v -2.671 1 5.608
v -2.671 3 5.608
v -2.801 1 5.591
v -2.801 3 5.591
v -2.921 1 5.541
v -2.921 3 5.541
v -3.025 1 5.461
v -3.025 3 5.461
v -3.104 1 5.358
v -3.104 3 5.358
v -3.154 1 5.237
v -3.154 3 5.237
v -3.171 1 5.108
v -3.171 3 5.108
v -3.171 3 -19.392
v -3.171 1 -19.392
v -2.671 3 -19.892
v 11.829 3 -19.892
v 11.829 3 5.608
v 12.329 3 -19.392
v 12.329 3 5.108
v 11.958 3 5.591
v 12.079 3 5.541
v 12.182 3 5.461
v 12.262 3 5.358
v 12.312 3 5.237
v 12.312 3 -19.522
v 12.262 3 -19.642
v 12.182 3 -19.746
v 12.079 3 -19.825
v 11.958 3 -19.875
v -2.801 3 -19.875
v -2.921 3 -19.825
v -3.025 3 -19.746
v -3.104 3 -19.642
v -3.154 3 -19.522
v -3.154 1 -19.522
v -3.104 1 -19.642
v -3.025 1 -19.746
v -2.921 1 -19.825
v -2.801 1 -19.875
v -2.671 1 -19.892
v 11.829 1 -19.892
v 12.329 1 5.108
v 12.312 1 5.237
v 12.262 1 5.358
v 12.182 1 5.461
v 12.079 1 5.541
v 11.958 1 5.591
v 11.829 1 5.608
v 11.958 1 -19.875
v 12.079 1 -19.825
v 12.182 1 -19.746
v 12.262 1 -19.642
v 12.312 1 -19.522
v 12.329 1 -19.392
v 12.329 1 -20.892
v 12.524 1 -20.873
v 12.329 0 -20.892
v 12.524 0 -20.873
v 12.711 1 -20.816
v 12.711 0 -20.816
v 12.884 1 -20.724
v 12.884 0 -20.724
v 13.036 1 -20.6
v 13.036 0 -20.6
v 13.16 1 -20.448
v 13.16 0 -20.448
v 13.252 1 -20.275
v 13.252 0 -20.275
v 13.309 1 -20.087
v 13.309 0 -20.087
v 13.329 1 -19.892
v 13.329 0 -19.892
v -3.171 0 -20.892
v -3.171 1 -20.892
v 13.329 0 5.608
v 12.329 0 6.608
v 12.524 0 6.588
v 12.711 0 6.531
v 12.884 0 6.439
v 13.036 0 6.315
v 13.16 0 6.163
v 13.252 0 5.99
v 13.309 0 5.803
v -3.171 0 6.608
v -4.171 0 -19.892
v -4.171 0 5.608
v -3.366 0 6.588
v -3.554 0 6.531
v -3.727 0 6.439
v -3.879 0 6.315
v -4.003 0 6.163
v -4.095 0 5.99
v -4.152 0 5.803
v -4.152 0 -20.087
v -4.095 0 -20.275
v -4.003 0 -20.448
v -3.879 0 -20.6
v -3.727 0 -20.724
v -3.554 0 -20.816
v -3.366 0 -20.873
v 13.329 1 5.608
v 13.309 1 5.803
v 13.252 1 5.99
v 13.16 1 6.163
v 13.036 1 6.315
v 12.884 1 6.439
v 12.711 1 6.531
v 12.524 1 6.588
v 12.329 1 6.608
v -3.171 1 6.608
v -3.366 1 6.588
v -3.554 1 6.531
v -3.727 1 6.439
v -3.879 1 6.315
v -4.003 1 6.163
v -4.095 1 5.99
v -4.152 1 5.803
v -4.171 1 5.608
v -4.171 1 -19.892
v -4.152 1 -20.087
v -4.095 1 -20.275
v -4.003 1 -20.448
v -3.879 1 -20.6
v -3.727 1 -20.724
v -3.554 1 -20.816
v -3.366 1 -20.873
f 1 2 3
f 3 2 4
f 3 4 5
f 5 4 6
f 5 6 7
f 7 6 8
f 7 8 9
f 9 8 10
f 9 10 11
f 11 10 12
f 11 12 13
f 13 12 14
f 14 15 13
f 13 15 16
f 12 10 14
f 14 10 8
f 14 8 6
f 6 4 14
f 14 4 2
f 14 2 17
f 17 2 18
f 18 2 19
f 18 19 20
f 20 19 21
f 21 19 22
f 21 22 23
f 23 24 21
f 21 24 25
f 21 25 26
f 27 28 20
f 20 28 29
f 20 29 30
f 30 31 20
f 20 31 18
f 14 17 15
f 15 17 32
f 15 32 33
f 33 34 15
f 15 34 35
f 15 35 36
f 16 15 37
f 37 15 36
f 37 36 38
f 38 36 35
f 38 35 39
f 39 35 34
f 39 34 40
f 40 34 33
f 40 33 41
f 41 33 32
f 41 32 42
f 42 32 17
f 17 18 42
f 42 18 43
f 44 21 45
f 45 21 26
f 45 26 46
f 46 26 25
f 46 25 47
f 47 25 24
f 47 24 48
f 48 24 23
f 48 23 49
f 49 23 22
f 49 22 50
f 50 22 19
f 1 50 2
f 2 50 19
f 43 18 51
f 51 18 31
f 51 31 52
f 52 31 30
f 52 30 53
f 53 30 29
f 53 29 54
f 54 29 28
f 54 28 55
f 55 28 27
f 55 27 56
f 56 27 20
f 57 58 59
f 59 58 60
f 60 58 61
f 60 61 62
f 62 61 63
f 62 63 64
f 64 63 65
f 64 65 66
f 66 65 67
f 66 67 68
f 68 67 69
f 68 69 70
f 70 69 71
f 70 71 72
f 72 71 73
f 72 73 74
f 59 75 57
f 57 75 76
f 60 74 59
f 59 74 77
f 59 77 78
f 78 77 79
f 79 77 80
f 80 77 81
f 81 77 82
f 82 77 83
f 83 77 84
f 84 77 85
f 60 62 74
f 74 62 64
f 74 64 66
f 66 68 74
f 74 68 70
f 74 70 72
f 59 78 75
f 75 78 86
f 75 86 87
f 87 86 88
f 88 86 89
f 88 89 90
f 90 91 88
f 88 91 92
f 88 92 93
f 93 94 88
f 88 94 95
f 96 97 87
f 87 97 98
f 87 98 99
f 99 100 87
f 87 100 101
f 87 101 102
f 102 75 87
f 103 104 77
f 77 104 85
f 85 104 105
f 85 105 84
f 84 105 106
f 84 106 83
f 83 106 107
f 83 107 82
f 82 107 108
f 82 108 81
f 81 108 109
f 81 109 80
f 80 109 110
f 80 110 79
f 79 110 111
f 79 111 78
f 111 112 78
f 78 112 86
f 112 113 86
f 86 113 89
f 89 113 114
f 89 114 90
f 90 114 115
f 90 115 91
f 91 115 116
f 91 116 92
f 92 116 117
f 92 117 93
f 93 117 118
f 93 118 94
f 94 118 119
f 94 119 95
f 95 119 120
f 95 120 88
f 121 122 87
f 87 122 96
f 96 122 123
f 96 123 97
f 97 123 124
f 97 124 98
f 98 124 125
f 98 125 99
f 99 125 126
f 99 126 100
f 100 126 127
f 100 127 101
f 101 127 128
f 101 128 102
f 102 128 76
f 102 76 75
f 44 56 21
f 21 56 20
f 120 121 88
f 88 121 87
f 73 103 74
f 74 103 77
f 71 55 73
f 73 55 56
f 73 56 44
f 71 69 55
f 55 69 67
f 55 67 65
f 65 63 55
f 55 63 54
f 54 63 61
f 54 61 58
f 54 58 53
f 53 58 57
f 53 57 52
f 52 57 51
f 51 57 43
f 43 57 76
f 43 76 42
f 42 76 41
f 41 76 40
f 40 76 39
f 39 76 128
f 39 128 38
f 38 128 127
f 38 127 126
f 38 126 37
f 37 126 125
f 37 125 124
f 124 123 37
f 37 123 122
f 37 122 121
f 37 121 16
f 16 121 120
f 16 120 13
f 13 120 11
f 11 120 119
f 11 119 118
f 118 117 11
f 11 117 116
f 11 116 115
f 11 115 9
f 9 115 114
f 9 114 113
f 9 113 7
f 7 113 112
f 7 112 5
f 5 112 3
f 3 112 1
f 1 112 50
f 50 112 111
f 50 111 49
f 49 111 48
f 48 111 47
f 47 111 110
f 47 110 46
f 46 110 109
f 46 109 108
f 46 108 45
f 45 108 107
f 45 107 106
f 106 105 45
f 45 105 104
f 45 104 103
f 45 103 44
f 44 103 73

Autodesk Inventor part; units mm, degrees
ref_plane "YZ Plane" through (0, 0, 0) normal (1, 0, 0) x (0, 1, 0)
ref_plane "XZ Plane" through (0, 0, 0) normal (0, 1, 0) x (-1, 0, 0)
ref_plane "XY Plane" through (0, 0, 0) normal (0, 0, 1) x (1, 0, 0)
sketch "Sketch1" plane through (0, 0, 0) normal (0, 1, 0) x (-1, 0, 0)
  point P0 (0, 0)
sketch "Sketch2" plane through (0, 0, 0) normal (0, 1, 0) x (-1, 0, 0)
  line L0 (4.1714, 6.6076) -> (-13.3286, 6.6076)
  line L1 (-13.3286, 6.6076) -> (-13.3286, -20.8924)
  line L2 (-13.3286, -20.8924) -> (4.1714, -20.8924)
  line L3 (4.1714, -20.8924) -> (4.1714, 6.6076)
  point P0 (0, 0)
  dimension "d0" = 17.5
  dimension "d1" = 27.5
extrude "Extrusion1" add sketch "Sketch2" along normal blind 1
sketch "Sketch3" plane through (0, 1, 0) normal (0, 1, 0) x (1, 0, 0)
  line L0 (-4.1714, -6.6076) -> (13.3286, -6.6076) projected
  line L1 (-4.1714, -6.6076) -> (-3.1714, -6.6076)
  line L2 (-3.1714, -6.6076) -> (-3.1714, -5.6076)
  line L3 (-3.1714, -5.6076) -> (12.3286, -5.6076)
  line L4 (12.3286, -5.6076) -> (12.3286, 19.8924)
  line L5 (12.3286, 19.8924) -> (-3.1714, 19.8924)
  line L6 (-3.1714, 19.8924) -> (-3.1714, -5.6076)
  point P0 (0, 0)
  dimension "d4" = 1
  dimension "d5" = 1
  dimension "d6" = 15.5
  dimension "d7" = 25.5
extrude "Extrusion2" add sketch "Sketch3" along normal blind 2
fillet "Fillet1" radius 1 4 edges at (-4.1714, 0.5, -20.8924) (-4.1714, 0.5, 6.6076) (13.3286, 0.5, 6.6076) (13.3286, 0.5, -20.8924)
fillet "Fillet2" radius 0.5 4 edges at (12.3286, 2, -19.8924) (12.3286, 2, 5.6076) (-3.1714, 2, -19.8924) (-3.1714, 2, 5.6076)
properties part number "plug"
